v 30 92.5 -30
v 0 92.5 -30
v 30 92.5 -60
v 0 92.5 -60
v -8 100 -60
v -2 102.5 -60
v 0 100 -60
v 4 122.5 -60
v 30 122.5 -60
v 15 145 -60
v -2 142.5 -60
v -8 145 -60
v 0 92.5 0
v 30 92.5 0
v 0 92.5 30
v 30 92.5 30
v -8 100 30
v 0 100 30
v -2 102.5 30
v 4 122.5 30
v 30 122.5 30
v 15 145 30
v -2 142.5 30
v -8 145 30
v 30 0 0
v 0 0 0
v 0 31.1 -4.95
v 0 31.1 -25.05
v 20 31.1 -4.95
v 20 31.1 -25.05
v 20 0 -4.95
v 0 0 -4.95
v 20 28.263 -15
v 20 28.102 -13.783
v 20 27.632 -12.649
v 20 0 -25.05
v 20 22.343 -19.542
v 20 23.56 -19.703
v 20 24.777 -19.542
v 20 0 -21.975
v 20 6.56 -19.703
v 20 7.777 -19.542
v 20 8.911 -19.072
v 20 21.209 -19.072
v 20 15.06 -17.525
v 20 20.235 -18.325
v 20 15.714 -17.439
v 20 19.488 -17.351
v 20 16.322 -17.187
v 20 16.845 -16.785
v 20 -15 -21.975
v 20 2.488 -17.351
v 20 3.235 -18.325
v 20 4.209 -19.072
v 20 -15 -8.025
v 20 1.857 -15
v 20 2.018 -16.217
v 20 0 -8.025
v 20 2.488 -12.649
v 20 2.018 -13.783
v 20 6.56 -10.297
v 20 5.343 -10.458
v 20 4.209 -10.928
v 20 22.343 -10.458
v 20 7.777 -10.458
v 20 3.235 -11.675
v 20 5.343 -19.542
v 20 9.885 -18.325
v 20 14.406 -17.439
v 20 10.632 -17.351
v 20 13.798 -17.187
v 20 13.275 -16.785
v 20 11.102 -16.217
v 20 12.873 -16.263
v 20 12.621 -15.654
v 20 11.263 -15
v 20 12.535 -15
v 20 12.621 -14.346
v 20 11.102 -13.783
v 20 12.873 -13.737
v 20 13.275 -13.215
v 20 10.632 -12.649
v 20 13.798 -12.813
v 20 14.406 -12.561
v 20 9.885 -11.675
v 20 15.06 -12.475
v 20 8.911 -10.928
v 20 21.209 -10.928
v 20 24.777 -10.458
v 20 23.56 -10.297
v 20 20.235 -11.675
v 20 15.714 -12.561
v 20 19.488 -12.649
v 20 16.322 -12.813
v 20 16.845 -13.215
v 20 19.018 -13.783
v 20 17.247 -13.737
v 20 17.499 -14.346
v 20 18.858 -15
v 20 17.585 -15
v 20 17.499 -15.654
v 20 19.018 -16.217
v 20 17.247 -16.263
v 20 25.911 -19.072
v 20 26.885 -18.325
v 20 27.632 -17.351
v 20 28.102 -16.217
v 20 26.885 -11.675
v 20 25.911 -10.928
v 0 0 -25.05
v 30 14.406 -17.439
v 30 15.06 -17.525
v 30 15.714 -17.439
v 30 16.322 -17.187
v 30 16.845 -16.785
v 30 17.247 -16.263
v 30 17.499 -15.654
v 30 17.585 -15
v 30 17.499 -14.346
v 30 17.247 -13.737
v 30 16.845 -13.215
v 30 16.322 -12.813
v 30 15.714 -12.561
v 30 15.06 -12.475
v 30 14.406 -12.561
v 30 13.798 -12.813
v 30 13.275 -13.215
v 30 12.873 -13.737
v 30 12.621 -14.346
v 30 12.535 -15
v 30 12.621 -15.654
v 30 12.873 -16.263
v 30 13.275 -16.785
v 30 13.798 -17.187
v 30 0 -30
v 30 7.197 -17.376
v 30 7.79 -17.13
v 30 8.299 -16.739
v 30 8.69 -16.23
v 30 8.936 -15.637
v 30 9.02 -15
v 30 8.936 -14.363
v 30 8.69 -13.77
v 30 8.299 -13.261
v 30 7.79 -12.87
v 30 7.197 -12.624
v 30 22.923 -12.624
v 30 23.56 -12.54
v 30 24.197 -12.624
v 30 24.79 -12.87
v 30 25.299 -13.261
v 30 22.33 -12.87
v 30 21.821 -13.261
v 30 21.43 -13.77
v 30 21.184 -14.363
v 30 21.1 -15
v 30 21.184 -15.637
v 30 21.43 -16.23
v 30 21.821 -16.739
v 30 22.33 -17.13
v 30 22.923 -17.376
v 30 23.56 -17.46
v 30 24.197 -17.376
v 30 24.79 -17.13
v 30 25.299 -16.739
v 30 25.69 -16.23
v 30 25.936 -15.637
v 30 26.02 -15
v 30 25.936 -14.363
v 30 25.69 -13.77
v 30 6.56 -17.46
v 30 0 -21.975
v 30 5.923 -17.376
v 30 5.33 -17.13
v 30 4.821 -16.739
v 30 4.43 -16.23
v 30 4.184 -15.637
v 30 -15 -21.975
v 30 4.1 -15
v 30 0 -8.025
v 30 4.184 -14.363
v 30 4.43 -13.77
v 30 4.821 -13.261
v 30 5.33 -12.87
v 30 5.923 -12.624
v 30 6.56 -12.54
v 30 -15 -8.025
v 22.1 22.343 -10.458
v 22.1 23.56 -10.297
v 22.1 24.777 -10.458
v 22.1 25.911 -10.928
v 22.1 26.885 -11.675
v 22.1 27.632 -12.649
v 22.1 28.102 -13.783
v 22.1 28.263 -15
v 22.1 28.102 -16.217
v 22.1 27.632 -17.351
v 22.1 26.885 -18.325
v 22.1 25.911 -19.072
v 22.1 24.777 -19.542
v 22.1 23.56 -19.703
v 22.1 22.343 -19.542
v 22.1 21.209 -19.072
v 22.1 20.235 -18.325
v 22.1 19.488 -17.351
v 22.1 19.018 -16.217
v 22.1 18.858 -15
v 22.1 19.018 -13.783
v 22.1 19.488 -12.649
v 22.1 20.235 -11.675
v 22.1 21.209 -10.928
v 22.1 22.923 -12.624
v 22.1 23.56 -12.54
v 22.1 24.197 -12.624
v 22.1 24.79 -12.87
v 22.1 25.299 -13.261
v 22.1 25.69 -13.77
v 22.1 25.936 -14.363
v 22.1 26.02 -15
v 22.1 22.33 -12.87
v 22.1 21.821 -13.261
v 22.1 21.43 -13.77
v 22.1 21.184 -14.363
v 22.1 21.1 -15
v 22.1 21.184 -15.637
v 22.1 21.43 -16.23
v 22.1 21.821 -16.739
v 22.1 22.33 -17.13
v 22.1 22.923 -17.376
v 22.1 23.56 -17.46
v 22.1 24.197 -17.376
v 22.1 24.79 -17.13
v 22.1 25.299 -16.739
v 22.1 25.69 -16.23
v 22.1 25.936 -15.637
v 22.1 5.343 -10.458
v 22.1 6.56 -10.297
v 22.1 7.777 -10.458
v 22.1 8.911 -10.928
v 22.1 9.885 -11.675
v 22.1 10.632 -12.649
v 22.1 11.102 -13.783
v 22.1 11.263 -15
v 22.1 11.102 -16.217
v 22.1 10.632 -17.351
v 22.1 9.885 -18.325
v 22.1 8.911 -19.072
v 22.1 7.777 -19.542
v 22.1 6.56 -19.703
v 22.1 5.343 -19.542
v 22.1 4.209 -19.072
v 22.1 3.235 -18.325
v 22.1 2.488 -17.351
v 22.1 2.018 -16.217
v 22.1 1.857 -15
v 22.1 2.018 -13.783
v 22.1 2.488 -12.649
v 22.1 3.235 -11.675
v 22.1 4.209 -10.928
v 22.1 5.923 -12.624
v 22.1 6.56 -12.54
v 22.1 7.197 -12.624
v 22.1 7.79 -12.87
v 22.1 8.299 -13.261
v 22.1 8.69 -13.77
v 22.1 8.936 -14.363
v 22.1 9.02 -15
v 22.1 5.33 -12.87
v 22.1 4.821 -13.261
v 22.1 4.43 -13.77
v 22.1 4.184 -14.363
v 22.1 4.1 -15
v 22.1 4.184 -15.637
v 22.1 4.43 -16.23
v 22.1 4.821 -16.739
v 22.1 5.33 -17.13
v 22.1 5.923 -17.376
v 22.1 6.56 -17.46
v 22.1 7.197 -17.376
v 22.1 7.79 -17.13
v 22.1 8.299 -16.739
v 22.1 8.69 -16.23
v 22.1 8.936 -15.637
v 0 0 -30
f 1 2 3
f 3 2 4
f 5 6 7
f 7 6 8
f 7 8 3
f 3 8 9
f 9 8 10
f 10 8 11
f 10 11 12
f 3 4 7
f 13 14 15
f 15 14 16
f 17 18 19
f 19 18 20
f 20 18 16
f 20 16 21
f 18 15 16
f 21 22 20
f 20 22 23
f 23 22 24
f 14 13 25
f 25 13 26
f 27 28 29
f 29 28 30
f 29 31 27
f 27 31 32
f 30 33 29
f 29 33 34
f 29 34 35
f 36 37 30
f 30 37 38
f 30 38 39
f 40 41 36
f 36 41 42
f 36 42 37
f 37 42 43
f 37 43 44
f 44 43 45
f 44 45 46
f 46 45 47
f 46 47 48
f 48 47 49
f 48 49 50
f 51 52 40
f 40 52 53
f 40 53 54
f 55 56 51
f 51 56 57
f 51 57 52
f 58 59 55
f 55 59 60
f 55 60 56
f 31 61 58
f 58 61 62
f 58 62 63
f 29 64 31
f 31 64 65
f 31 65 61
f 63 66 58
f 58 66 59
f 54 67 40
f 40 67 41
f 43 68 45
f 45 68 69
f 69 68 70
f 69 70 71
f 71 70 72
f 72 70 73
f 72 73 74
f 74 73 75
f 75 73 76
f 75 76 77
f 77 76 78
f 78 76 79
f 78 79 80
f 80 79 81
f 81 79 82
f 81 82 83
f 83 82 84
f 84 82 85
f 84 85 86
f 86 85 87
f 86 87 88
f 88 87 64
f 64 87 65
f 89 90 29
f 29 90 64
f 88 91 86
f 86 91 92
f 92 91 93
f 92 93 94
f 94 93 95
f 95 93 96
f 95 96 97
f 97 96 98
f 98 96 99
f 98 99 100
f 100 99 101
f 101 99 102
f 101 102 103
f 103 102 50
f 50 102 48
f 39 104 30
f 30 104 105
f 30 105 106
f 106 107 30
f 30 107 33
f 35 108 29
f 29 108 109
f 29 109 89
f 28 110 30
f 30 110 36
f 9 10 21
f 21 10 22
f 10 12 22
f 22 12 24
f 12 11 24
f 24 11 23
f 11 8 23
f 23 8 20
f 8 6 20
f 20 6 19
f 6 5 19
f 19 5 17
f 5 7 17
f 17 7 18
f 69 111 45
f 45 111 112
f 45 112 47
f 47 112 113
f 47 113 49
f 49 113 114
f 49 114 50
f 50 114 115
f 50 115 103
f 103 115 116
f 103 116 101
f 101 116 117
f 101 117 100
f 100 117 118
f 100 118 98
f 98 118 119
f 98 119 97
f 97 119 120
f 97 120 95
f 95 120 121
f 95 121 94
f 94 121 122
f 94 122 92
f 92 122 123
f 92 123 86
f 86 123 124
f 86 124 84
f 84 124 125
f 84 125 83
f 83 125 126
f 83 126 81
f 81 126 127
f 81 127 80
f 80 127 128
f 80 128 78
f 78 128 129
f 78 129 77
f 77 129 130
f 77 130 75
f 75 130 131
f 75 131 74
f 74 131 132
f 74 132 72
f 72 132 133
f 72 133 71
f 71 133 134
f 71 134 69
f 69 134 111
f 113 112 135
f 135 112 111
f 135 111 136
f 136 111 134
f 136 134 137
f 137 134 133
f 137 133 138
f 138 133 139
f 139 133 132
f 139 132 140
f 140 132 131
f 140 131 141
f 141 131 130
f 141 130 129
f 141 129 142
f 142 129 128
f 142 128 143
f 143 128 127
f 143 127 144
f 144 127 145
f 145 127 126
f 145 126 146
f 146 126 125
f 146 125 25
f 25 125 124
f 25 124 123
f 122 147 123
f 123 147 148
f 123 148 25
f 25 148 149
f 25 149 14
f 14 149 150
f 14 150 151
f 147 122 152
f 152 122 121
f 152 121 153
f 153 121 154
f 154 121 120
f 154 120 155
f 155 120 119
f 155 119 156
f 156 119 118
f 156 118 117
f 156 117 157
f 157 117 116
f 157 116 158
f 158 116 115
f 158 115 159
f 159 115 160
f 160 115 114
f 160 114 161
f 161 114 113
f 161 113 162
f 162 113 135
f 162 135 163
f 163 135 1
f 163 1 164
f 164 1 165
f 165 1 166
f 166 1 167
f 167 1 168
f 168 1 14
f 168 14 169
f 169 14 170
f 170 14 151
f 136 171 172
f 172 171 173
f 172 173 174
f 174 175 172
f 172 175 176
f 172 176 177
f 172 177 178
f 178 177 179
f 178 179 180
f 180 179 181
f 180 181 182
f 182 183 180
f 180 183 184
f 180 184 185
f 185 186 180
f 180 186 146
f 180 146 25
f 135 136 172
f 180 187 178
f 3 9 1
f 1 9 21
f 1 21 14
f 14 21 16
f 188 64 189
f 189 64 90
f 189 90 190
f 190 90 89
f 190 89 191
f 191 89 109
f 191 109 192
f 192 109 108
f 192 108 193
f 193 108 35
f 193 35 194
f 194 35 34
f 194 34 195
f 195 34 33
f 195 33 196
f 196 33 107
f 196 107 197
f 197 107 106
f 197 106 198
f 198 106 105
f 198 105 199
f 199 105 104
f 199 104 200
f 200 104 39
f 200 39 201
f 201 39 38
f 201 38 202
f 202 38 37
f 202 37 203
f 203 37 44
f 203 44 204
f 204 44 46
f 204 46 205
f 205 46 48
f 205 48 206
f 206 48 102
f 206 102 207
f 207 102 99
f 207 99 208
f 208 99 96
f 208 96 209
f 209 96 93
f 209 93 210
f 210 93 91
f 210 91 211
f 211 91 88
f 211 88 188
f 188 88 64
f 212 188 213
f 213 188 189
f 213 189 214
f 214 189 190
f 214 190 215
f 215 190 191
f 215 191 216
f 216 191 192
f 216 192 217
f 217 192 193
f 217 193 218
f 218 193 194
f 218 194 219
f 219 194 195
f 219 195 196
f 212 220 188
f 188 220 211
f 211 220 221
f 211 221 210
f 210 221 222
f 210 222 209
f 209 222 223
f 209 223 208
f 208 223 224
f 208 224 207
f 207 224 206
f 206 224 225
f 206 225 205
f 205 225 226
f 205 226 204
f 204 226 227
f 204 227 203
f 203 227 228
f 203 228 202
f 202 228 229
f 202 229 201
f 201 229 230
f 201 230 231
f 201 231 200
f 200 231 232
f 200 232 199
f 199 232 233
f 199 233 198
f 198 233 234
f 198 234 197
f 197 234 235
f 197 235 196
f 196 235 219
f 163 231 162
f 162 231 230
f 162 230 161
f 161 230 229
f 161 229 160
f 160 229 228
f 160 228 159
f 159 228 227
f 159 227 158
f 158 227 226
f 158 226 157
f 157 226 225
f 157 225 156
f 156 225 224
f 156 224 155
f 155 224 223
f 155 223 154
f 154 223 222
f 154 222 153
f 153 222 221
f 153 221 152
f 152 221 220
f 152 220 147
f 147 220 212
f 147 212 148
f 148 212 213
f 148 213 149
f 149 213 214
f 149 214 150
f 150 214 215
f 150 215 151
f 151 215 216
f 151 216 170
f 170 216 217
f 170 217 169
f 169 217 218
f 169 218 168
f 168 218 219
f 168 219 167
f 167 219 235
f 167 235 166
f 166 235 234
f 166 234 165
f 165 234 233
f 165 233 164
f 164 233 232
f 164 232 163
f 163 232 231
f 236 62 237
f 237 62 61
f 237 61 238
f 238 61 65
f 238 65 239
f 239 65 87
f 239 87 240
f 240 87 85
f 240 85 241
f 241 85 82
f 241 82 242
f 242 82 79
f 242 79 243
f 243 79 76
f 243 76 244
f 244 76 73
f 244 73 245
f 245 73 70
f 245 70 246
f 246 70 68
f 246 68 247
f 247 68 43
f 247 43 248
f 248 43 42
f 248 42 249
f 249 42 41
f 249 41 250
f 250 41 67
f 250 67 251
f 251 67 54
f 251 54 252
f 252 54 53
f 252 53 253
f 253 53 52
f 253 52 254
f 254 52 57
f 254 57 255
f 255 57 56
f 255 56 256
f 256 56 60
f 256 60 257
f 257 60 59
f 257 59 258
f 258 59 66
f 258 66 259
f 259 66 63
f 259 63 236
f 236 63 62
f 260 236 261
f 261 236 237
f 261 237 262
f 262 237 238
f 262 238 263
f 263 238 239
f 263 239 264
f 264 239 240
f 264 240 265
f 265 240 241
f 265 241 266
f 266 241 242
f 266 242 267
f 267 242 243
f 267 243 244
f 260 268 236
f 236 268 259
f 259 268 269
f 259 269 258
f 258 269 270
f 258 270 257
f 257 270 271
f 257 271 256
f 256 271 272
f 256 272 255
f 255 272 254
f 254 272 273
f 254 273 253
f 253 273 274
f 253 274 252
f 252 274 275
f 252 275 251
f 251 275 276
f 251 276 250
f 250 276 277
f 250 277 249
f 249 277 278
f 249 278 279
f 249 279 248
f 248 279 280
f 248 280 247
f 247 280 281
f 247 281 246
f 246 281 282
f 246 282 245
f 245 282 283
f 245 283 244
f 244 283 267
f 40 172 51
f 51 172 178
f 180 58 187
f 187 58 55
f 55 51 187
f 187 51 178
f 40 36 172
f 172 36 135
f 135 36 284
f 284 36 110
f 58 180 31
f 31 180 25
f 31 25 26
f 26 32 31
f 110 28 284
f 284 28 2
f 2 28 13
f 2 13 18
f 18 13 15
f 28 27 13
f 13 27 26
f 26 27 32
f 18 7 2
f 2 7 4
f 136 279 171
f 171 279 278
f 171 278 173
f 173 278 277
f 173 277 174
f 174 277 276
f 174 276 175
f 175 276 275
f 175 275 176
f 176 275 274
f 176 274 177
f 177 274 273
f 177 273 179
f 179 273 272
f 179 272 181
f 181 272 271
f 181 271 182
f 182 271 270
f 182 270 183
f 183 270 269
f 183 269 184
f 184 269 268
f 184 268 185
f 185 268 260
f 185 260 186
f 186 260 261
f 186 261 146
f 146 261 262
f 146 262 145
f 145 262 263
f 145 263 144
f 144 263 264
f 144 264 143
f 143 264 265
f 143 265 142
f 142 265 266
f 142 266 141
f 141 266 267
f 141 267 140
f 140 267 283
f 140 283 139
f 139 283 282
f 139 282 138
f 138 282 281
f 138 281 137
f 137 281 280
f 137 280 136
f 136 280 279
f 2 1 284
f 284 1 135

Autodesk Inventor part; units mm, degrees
ref_plane "YZ Plane" through (0, 0, 0) normal (1, 0, 0) x (0, 1, 0)
ref_plane "XZ Plane" through (0, 0, 0) normal (0, 1, 0) x (-1, 0, 0)
sketch "Sketch1" plane through (0, 0, 0) normal (0, 0, 1) x (1, 0, 0)
  line L0 (0, 0) -> (25, 0)
  line L1 (25, 0) -> (25, 40)
  line L2 (25, 40) -> (0, 40)
  line L3 (0, 40) -> (0, 0)
  dimension "d1" = 25
  dimension "d2" = 40
  dimension "d3" = 25
extrude "Extrusion1" add sketch "Sketch1" against normal blind 30
sketch "Sketch2" plane through (25, 0, 0) normal (1, 0, 0) x (0, 0, -1)
  line L0 (0, 0) -> (30, 0) projected
  circle A0 centre (15, 6.56) radius 2.46
extrude "Extrusion2" cut sketch "Sketch2" against normal blind 30
sketch "Sketch3" plane through (0, 0, 0) normal (-1, 0, 0) x (0, 0, 1)
  line L0 (0, 0) -> (-30, 0) projected
  line L1 (-25.05, 0) -> (-4.95, 0)
  line L2 (-4.95, 0) -> (-4.95, 33.12)
  line L3 (-4.95, 33.12) -> (-25.05, 33.12)
  line L4 (-25.05, 33.12) -> (-25.05, 0)
  dimension "d11" = 20.1
extrude "Extrusion3" cut sketch "Sketch3" against normal blind 20
sketch "Sketch4" plane through (0, 0, 0) normal (0, -1, 0) x (1, 0, 0)
  line L0 (20, -4.95) -> (20, -25.05) projected
  line L1 (20, -15) -> (25, -15)
  line L2 (25, 0) -> (25, -30) projected
  line L3 (20, -8.025) -> (25, -8.025)
  line L4 (25, -8.025) -> (25, -21.975)
  line L5 (25, -21.975) -> (20, -21.975)
  line L6 (20, -21.975) -> (20, -8.025)
  line L7 (20, -8.025) -> (25, -21.975) construction
  line L8 (25, -8.025) -> (20, -21.975) construction
  line L9 (25, -12.54) -> (25, -17.46) projected
  point P0 (0, 0)
  point P1 (22.5, -15)
  dimension "d14" = 13.95
extrude "Extrusion4" add sketch "Sketch4" along normal blind 15
sketch "Sketch5" plane through (20, 0, 0) normal (-1, 0, 0) x (0, 0, 1)
  circle A0 centre (-15, 6.56) radius 2.46 projected
  circle A1 centre (-15, 6.56) radius 4.7025
  circle A2 centre (-15, 6.56) radius 2.46 projected
  circle A3 centre (-15, 6.56) radius 2.46
  point P0 (0, 0)
  dimension "d17" = 9.405
extrude "Extrusion5" cut sketch "Sketch5" against normal blind 2.1
sketch "Sketch6" plane through (25, 0, 0) normal (1, 0, 0) x (0, 0, -1)
  circle A0 centre (15, 6.56) radius 4.7025 projected
  line L0 (15, 6.56) -> (15, 23.56)
  circle A1 centre (15, 23.56) radius 2.46
  point P0 (0, 0)
  dimension "d20" = 17
  dimension "d21" = 4.92
extrude "Extrusion6" cut sketch "Sketch6" against normal blind 10 contours A1
sketch "Sketch7" plane through (20, 0, 0) normal (-1, 0, 0) x (0, 0, 1)
  circle A0 centre (-15, 23.56) radius 2.46 projected
  circle A1 centre (-15, 23.56) radius 4.7025
  point P0 (0, 0)
  dimension "d24" = 9.405
extrude "Extrusion7" cut sketch "Sketch7" against normal blind 2.1
sketch "Sketch9" plane through (25, 0, 0) normal (1, 0, 0) x (0, 0, -1)
  circle A0 centre (15, 6.56) radius 2.46 projected
  circle A1 centre (15, 6.56) radius 2.46
  circle A2 centre (15, 23.56) radius 2.46 projected
  circle A3 centre (15, 23.56) radius 2.46
  line L0 (30, 40) -> (30, 0) projected
  line L1 (30, 0) -> (30, 40)
  line L2 (30, 40) -> (0, 40)
  line L3 (0, 40) -> (0, 0)
  line L4 (0, 0) -> (8.025, 0) projected
  line L5 (21.975, 0) -> (21.975, -15)
  line L6 (21.975, -15) -> (8.025, -15)
  line L7 (8.025, -15) -> (8.025, 0)
  line L8 (0, 0) -> (8.025, 0)
  line L9 (21.975, 0) -> (30, 0)
extrude "Extrusion8" add sketch "Sketch9" along normal blind 5
sketch "Sketch10" plane through (0, 40, 0) normal (0, 1, 0) x (1, 0, 0)
  line L0 (0, 30) -> (30, 30) projected
  line L1 (30, 0) -> (0, 0) projected
  line L2 (0, 30) -> (30, 30)
  line L3 (30, 30) -> (30, 0)
  line L4 (30, 0) -> (0, 0)
  line L5 (0, 0) -> (0, 30)
extrude "Extrusion9" add sketch "Sketch10" along normal blind 30
sketch "Sketch12" plane through (30, 0, 0) normal (1, 0, 0) x (0, 0, -1)
  circle A0 centre (15, 6.56) radius 2.46 projected
  line L0 (15, 6.56) -> (15, 15.06)
  circle A1 centre (15, 15.06) radius 2.525
  point P0 (0, 0)
  dimension "d31" = 8.5
  dimension "d33" = 5.05
extrude "Extrusion10" cut sketch "Sketch12" against normal blind 30 contours A1
sketch "Sketch14" plane through (0, 0, 0) normal (0, 0, 1) x (1, 0, 0)
  line L0 (30, 70) -> (0, 70) projected
  line L1 (0, 100) -> (-8, 100)
  line L2 (30, 0) -> (30, 70) projected
  line L3 (30, 118) -> (30, 70)
  line L4 (30, 105) -> (30, 100)
  line L5 (0, 70) -> (30, 70) projected
  line L6 (0, 70) -> (0, 100)
  line L7 (-8, 145) -> (15, 145)
  line L8 (-2, 142.5) -> (-8, 145)
  line L9 (-2, 102.5) -> (-8, 100)
  line L10 (-2, 102.5) -> (4, 122.5)
  line L11 (4, 122.5) -> (-2, 142.5)
  line L12 (15, 145) -> (30, 122.5)
  line L13 (30, 122.5) -> (30, 118)
  point P0 (0, 0)
  dimension "d47" = 30
  dimension "d85" = 45
extrude "Extrusion12" add sketch "Sketch14" against normal blind 30
sketch "Sketch15" plane through (0, 0, -25.05) normal (-1, 0, 0) x (0, 0, 1)
  line L0 (0, 33.12) -> (20.1, 33.12) projected
  line L1 (20.1, 33.12) -> (20.1, 0) projected
  line L2 (0, 33.12) -> (20.1, 33.12)
  line L3 (20.1, 33.12) -> (20.1, 31.1)
  line L4 (20.1, 31.1) -> (0, 31.1)
  line L5 (0, 31.1) -> (0, 33.12)
  point P0 (25.05, 0)
  dimension "d57" = 2.02
extrude "Extrusion13" add sketch "Sketch15" against normal blind 20
sketch "Sketch25" plane through (0, 0, 0) normal (0, 0, 1) x (1, 0, 0)
  line L0 (-8, 100) -> (0, 100) projected
  line L1 (0, 100) -> (-8, 100)
  line L2 (-8, 100) -> (-2, 102.5) projected
  line L3 (-8, 100) -> (-2, 102.5)
  line L4 (-2, 102.5) -> (4, 122.5)
  line L5 (-8, 145) -> (-2, 142.5) projected
  line L6 (4, 122.5) -> (-2, 142.5)
  line L7 (-2, 142.5) -> (-8, 145)
  line L8 (15, 145) -> (-8, 145) projected
  line L9 (-8, 145) -> (15, 145)
  line L10 (15, 145) -> (30, 122.5) projected
  line L11 (15, 145) -> (30, 122.5)
  line L12 (30, 122.5) -> (30, 92.5)
  line L13 (30, 0) -> (30, 122.5) projected
  line L14 (30, 92.5) -> (0, 92.5)
  line L15 (0, 0) -> (0, 100) projected
  line L16 (0, 92.5) -> (0, 100)
  dimension "d88" = 30
extrude "Extrusion14" add sketch "Sketch25" along normal blind 30
ref_plane "Work Plane1" through (0, 0, -15) normal (0, 0, 1) x (1, 0, 0)
mirror "Mirror1" about plane through (0, 0, -15) normal (0, 0, 1) of "Extrusion14"
properties part number "40mm_x_90mm"
